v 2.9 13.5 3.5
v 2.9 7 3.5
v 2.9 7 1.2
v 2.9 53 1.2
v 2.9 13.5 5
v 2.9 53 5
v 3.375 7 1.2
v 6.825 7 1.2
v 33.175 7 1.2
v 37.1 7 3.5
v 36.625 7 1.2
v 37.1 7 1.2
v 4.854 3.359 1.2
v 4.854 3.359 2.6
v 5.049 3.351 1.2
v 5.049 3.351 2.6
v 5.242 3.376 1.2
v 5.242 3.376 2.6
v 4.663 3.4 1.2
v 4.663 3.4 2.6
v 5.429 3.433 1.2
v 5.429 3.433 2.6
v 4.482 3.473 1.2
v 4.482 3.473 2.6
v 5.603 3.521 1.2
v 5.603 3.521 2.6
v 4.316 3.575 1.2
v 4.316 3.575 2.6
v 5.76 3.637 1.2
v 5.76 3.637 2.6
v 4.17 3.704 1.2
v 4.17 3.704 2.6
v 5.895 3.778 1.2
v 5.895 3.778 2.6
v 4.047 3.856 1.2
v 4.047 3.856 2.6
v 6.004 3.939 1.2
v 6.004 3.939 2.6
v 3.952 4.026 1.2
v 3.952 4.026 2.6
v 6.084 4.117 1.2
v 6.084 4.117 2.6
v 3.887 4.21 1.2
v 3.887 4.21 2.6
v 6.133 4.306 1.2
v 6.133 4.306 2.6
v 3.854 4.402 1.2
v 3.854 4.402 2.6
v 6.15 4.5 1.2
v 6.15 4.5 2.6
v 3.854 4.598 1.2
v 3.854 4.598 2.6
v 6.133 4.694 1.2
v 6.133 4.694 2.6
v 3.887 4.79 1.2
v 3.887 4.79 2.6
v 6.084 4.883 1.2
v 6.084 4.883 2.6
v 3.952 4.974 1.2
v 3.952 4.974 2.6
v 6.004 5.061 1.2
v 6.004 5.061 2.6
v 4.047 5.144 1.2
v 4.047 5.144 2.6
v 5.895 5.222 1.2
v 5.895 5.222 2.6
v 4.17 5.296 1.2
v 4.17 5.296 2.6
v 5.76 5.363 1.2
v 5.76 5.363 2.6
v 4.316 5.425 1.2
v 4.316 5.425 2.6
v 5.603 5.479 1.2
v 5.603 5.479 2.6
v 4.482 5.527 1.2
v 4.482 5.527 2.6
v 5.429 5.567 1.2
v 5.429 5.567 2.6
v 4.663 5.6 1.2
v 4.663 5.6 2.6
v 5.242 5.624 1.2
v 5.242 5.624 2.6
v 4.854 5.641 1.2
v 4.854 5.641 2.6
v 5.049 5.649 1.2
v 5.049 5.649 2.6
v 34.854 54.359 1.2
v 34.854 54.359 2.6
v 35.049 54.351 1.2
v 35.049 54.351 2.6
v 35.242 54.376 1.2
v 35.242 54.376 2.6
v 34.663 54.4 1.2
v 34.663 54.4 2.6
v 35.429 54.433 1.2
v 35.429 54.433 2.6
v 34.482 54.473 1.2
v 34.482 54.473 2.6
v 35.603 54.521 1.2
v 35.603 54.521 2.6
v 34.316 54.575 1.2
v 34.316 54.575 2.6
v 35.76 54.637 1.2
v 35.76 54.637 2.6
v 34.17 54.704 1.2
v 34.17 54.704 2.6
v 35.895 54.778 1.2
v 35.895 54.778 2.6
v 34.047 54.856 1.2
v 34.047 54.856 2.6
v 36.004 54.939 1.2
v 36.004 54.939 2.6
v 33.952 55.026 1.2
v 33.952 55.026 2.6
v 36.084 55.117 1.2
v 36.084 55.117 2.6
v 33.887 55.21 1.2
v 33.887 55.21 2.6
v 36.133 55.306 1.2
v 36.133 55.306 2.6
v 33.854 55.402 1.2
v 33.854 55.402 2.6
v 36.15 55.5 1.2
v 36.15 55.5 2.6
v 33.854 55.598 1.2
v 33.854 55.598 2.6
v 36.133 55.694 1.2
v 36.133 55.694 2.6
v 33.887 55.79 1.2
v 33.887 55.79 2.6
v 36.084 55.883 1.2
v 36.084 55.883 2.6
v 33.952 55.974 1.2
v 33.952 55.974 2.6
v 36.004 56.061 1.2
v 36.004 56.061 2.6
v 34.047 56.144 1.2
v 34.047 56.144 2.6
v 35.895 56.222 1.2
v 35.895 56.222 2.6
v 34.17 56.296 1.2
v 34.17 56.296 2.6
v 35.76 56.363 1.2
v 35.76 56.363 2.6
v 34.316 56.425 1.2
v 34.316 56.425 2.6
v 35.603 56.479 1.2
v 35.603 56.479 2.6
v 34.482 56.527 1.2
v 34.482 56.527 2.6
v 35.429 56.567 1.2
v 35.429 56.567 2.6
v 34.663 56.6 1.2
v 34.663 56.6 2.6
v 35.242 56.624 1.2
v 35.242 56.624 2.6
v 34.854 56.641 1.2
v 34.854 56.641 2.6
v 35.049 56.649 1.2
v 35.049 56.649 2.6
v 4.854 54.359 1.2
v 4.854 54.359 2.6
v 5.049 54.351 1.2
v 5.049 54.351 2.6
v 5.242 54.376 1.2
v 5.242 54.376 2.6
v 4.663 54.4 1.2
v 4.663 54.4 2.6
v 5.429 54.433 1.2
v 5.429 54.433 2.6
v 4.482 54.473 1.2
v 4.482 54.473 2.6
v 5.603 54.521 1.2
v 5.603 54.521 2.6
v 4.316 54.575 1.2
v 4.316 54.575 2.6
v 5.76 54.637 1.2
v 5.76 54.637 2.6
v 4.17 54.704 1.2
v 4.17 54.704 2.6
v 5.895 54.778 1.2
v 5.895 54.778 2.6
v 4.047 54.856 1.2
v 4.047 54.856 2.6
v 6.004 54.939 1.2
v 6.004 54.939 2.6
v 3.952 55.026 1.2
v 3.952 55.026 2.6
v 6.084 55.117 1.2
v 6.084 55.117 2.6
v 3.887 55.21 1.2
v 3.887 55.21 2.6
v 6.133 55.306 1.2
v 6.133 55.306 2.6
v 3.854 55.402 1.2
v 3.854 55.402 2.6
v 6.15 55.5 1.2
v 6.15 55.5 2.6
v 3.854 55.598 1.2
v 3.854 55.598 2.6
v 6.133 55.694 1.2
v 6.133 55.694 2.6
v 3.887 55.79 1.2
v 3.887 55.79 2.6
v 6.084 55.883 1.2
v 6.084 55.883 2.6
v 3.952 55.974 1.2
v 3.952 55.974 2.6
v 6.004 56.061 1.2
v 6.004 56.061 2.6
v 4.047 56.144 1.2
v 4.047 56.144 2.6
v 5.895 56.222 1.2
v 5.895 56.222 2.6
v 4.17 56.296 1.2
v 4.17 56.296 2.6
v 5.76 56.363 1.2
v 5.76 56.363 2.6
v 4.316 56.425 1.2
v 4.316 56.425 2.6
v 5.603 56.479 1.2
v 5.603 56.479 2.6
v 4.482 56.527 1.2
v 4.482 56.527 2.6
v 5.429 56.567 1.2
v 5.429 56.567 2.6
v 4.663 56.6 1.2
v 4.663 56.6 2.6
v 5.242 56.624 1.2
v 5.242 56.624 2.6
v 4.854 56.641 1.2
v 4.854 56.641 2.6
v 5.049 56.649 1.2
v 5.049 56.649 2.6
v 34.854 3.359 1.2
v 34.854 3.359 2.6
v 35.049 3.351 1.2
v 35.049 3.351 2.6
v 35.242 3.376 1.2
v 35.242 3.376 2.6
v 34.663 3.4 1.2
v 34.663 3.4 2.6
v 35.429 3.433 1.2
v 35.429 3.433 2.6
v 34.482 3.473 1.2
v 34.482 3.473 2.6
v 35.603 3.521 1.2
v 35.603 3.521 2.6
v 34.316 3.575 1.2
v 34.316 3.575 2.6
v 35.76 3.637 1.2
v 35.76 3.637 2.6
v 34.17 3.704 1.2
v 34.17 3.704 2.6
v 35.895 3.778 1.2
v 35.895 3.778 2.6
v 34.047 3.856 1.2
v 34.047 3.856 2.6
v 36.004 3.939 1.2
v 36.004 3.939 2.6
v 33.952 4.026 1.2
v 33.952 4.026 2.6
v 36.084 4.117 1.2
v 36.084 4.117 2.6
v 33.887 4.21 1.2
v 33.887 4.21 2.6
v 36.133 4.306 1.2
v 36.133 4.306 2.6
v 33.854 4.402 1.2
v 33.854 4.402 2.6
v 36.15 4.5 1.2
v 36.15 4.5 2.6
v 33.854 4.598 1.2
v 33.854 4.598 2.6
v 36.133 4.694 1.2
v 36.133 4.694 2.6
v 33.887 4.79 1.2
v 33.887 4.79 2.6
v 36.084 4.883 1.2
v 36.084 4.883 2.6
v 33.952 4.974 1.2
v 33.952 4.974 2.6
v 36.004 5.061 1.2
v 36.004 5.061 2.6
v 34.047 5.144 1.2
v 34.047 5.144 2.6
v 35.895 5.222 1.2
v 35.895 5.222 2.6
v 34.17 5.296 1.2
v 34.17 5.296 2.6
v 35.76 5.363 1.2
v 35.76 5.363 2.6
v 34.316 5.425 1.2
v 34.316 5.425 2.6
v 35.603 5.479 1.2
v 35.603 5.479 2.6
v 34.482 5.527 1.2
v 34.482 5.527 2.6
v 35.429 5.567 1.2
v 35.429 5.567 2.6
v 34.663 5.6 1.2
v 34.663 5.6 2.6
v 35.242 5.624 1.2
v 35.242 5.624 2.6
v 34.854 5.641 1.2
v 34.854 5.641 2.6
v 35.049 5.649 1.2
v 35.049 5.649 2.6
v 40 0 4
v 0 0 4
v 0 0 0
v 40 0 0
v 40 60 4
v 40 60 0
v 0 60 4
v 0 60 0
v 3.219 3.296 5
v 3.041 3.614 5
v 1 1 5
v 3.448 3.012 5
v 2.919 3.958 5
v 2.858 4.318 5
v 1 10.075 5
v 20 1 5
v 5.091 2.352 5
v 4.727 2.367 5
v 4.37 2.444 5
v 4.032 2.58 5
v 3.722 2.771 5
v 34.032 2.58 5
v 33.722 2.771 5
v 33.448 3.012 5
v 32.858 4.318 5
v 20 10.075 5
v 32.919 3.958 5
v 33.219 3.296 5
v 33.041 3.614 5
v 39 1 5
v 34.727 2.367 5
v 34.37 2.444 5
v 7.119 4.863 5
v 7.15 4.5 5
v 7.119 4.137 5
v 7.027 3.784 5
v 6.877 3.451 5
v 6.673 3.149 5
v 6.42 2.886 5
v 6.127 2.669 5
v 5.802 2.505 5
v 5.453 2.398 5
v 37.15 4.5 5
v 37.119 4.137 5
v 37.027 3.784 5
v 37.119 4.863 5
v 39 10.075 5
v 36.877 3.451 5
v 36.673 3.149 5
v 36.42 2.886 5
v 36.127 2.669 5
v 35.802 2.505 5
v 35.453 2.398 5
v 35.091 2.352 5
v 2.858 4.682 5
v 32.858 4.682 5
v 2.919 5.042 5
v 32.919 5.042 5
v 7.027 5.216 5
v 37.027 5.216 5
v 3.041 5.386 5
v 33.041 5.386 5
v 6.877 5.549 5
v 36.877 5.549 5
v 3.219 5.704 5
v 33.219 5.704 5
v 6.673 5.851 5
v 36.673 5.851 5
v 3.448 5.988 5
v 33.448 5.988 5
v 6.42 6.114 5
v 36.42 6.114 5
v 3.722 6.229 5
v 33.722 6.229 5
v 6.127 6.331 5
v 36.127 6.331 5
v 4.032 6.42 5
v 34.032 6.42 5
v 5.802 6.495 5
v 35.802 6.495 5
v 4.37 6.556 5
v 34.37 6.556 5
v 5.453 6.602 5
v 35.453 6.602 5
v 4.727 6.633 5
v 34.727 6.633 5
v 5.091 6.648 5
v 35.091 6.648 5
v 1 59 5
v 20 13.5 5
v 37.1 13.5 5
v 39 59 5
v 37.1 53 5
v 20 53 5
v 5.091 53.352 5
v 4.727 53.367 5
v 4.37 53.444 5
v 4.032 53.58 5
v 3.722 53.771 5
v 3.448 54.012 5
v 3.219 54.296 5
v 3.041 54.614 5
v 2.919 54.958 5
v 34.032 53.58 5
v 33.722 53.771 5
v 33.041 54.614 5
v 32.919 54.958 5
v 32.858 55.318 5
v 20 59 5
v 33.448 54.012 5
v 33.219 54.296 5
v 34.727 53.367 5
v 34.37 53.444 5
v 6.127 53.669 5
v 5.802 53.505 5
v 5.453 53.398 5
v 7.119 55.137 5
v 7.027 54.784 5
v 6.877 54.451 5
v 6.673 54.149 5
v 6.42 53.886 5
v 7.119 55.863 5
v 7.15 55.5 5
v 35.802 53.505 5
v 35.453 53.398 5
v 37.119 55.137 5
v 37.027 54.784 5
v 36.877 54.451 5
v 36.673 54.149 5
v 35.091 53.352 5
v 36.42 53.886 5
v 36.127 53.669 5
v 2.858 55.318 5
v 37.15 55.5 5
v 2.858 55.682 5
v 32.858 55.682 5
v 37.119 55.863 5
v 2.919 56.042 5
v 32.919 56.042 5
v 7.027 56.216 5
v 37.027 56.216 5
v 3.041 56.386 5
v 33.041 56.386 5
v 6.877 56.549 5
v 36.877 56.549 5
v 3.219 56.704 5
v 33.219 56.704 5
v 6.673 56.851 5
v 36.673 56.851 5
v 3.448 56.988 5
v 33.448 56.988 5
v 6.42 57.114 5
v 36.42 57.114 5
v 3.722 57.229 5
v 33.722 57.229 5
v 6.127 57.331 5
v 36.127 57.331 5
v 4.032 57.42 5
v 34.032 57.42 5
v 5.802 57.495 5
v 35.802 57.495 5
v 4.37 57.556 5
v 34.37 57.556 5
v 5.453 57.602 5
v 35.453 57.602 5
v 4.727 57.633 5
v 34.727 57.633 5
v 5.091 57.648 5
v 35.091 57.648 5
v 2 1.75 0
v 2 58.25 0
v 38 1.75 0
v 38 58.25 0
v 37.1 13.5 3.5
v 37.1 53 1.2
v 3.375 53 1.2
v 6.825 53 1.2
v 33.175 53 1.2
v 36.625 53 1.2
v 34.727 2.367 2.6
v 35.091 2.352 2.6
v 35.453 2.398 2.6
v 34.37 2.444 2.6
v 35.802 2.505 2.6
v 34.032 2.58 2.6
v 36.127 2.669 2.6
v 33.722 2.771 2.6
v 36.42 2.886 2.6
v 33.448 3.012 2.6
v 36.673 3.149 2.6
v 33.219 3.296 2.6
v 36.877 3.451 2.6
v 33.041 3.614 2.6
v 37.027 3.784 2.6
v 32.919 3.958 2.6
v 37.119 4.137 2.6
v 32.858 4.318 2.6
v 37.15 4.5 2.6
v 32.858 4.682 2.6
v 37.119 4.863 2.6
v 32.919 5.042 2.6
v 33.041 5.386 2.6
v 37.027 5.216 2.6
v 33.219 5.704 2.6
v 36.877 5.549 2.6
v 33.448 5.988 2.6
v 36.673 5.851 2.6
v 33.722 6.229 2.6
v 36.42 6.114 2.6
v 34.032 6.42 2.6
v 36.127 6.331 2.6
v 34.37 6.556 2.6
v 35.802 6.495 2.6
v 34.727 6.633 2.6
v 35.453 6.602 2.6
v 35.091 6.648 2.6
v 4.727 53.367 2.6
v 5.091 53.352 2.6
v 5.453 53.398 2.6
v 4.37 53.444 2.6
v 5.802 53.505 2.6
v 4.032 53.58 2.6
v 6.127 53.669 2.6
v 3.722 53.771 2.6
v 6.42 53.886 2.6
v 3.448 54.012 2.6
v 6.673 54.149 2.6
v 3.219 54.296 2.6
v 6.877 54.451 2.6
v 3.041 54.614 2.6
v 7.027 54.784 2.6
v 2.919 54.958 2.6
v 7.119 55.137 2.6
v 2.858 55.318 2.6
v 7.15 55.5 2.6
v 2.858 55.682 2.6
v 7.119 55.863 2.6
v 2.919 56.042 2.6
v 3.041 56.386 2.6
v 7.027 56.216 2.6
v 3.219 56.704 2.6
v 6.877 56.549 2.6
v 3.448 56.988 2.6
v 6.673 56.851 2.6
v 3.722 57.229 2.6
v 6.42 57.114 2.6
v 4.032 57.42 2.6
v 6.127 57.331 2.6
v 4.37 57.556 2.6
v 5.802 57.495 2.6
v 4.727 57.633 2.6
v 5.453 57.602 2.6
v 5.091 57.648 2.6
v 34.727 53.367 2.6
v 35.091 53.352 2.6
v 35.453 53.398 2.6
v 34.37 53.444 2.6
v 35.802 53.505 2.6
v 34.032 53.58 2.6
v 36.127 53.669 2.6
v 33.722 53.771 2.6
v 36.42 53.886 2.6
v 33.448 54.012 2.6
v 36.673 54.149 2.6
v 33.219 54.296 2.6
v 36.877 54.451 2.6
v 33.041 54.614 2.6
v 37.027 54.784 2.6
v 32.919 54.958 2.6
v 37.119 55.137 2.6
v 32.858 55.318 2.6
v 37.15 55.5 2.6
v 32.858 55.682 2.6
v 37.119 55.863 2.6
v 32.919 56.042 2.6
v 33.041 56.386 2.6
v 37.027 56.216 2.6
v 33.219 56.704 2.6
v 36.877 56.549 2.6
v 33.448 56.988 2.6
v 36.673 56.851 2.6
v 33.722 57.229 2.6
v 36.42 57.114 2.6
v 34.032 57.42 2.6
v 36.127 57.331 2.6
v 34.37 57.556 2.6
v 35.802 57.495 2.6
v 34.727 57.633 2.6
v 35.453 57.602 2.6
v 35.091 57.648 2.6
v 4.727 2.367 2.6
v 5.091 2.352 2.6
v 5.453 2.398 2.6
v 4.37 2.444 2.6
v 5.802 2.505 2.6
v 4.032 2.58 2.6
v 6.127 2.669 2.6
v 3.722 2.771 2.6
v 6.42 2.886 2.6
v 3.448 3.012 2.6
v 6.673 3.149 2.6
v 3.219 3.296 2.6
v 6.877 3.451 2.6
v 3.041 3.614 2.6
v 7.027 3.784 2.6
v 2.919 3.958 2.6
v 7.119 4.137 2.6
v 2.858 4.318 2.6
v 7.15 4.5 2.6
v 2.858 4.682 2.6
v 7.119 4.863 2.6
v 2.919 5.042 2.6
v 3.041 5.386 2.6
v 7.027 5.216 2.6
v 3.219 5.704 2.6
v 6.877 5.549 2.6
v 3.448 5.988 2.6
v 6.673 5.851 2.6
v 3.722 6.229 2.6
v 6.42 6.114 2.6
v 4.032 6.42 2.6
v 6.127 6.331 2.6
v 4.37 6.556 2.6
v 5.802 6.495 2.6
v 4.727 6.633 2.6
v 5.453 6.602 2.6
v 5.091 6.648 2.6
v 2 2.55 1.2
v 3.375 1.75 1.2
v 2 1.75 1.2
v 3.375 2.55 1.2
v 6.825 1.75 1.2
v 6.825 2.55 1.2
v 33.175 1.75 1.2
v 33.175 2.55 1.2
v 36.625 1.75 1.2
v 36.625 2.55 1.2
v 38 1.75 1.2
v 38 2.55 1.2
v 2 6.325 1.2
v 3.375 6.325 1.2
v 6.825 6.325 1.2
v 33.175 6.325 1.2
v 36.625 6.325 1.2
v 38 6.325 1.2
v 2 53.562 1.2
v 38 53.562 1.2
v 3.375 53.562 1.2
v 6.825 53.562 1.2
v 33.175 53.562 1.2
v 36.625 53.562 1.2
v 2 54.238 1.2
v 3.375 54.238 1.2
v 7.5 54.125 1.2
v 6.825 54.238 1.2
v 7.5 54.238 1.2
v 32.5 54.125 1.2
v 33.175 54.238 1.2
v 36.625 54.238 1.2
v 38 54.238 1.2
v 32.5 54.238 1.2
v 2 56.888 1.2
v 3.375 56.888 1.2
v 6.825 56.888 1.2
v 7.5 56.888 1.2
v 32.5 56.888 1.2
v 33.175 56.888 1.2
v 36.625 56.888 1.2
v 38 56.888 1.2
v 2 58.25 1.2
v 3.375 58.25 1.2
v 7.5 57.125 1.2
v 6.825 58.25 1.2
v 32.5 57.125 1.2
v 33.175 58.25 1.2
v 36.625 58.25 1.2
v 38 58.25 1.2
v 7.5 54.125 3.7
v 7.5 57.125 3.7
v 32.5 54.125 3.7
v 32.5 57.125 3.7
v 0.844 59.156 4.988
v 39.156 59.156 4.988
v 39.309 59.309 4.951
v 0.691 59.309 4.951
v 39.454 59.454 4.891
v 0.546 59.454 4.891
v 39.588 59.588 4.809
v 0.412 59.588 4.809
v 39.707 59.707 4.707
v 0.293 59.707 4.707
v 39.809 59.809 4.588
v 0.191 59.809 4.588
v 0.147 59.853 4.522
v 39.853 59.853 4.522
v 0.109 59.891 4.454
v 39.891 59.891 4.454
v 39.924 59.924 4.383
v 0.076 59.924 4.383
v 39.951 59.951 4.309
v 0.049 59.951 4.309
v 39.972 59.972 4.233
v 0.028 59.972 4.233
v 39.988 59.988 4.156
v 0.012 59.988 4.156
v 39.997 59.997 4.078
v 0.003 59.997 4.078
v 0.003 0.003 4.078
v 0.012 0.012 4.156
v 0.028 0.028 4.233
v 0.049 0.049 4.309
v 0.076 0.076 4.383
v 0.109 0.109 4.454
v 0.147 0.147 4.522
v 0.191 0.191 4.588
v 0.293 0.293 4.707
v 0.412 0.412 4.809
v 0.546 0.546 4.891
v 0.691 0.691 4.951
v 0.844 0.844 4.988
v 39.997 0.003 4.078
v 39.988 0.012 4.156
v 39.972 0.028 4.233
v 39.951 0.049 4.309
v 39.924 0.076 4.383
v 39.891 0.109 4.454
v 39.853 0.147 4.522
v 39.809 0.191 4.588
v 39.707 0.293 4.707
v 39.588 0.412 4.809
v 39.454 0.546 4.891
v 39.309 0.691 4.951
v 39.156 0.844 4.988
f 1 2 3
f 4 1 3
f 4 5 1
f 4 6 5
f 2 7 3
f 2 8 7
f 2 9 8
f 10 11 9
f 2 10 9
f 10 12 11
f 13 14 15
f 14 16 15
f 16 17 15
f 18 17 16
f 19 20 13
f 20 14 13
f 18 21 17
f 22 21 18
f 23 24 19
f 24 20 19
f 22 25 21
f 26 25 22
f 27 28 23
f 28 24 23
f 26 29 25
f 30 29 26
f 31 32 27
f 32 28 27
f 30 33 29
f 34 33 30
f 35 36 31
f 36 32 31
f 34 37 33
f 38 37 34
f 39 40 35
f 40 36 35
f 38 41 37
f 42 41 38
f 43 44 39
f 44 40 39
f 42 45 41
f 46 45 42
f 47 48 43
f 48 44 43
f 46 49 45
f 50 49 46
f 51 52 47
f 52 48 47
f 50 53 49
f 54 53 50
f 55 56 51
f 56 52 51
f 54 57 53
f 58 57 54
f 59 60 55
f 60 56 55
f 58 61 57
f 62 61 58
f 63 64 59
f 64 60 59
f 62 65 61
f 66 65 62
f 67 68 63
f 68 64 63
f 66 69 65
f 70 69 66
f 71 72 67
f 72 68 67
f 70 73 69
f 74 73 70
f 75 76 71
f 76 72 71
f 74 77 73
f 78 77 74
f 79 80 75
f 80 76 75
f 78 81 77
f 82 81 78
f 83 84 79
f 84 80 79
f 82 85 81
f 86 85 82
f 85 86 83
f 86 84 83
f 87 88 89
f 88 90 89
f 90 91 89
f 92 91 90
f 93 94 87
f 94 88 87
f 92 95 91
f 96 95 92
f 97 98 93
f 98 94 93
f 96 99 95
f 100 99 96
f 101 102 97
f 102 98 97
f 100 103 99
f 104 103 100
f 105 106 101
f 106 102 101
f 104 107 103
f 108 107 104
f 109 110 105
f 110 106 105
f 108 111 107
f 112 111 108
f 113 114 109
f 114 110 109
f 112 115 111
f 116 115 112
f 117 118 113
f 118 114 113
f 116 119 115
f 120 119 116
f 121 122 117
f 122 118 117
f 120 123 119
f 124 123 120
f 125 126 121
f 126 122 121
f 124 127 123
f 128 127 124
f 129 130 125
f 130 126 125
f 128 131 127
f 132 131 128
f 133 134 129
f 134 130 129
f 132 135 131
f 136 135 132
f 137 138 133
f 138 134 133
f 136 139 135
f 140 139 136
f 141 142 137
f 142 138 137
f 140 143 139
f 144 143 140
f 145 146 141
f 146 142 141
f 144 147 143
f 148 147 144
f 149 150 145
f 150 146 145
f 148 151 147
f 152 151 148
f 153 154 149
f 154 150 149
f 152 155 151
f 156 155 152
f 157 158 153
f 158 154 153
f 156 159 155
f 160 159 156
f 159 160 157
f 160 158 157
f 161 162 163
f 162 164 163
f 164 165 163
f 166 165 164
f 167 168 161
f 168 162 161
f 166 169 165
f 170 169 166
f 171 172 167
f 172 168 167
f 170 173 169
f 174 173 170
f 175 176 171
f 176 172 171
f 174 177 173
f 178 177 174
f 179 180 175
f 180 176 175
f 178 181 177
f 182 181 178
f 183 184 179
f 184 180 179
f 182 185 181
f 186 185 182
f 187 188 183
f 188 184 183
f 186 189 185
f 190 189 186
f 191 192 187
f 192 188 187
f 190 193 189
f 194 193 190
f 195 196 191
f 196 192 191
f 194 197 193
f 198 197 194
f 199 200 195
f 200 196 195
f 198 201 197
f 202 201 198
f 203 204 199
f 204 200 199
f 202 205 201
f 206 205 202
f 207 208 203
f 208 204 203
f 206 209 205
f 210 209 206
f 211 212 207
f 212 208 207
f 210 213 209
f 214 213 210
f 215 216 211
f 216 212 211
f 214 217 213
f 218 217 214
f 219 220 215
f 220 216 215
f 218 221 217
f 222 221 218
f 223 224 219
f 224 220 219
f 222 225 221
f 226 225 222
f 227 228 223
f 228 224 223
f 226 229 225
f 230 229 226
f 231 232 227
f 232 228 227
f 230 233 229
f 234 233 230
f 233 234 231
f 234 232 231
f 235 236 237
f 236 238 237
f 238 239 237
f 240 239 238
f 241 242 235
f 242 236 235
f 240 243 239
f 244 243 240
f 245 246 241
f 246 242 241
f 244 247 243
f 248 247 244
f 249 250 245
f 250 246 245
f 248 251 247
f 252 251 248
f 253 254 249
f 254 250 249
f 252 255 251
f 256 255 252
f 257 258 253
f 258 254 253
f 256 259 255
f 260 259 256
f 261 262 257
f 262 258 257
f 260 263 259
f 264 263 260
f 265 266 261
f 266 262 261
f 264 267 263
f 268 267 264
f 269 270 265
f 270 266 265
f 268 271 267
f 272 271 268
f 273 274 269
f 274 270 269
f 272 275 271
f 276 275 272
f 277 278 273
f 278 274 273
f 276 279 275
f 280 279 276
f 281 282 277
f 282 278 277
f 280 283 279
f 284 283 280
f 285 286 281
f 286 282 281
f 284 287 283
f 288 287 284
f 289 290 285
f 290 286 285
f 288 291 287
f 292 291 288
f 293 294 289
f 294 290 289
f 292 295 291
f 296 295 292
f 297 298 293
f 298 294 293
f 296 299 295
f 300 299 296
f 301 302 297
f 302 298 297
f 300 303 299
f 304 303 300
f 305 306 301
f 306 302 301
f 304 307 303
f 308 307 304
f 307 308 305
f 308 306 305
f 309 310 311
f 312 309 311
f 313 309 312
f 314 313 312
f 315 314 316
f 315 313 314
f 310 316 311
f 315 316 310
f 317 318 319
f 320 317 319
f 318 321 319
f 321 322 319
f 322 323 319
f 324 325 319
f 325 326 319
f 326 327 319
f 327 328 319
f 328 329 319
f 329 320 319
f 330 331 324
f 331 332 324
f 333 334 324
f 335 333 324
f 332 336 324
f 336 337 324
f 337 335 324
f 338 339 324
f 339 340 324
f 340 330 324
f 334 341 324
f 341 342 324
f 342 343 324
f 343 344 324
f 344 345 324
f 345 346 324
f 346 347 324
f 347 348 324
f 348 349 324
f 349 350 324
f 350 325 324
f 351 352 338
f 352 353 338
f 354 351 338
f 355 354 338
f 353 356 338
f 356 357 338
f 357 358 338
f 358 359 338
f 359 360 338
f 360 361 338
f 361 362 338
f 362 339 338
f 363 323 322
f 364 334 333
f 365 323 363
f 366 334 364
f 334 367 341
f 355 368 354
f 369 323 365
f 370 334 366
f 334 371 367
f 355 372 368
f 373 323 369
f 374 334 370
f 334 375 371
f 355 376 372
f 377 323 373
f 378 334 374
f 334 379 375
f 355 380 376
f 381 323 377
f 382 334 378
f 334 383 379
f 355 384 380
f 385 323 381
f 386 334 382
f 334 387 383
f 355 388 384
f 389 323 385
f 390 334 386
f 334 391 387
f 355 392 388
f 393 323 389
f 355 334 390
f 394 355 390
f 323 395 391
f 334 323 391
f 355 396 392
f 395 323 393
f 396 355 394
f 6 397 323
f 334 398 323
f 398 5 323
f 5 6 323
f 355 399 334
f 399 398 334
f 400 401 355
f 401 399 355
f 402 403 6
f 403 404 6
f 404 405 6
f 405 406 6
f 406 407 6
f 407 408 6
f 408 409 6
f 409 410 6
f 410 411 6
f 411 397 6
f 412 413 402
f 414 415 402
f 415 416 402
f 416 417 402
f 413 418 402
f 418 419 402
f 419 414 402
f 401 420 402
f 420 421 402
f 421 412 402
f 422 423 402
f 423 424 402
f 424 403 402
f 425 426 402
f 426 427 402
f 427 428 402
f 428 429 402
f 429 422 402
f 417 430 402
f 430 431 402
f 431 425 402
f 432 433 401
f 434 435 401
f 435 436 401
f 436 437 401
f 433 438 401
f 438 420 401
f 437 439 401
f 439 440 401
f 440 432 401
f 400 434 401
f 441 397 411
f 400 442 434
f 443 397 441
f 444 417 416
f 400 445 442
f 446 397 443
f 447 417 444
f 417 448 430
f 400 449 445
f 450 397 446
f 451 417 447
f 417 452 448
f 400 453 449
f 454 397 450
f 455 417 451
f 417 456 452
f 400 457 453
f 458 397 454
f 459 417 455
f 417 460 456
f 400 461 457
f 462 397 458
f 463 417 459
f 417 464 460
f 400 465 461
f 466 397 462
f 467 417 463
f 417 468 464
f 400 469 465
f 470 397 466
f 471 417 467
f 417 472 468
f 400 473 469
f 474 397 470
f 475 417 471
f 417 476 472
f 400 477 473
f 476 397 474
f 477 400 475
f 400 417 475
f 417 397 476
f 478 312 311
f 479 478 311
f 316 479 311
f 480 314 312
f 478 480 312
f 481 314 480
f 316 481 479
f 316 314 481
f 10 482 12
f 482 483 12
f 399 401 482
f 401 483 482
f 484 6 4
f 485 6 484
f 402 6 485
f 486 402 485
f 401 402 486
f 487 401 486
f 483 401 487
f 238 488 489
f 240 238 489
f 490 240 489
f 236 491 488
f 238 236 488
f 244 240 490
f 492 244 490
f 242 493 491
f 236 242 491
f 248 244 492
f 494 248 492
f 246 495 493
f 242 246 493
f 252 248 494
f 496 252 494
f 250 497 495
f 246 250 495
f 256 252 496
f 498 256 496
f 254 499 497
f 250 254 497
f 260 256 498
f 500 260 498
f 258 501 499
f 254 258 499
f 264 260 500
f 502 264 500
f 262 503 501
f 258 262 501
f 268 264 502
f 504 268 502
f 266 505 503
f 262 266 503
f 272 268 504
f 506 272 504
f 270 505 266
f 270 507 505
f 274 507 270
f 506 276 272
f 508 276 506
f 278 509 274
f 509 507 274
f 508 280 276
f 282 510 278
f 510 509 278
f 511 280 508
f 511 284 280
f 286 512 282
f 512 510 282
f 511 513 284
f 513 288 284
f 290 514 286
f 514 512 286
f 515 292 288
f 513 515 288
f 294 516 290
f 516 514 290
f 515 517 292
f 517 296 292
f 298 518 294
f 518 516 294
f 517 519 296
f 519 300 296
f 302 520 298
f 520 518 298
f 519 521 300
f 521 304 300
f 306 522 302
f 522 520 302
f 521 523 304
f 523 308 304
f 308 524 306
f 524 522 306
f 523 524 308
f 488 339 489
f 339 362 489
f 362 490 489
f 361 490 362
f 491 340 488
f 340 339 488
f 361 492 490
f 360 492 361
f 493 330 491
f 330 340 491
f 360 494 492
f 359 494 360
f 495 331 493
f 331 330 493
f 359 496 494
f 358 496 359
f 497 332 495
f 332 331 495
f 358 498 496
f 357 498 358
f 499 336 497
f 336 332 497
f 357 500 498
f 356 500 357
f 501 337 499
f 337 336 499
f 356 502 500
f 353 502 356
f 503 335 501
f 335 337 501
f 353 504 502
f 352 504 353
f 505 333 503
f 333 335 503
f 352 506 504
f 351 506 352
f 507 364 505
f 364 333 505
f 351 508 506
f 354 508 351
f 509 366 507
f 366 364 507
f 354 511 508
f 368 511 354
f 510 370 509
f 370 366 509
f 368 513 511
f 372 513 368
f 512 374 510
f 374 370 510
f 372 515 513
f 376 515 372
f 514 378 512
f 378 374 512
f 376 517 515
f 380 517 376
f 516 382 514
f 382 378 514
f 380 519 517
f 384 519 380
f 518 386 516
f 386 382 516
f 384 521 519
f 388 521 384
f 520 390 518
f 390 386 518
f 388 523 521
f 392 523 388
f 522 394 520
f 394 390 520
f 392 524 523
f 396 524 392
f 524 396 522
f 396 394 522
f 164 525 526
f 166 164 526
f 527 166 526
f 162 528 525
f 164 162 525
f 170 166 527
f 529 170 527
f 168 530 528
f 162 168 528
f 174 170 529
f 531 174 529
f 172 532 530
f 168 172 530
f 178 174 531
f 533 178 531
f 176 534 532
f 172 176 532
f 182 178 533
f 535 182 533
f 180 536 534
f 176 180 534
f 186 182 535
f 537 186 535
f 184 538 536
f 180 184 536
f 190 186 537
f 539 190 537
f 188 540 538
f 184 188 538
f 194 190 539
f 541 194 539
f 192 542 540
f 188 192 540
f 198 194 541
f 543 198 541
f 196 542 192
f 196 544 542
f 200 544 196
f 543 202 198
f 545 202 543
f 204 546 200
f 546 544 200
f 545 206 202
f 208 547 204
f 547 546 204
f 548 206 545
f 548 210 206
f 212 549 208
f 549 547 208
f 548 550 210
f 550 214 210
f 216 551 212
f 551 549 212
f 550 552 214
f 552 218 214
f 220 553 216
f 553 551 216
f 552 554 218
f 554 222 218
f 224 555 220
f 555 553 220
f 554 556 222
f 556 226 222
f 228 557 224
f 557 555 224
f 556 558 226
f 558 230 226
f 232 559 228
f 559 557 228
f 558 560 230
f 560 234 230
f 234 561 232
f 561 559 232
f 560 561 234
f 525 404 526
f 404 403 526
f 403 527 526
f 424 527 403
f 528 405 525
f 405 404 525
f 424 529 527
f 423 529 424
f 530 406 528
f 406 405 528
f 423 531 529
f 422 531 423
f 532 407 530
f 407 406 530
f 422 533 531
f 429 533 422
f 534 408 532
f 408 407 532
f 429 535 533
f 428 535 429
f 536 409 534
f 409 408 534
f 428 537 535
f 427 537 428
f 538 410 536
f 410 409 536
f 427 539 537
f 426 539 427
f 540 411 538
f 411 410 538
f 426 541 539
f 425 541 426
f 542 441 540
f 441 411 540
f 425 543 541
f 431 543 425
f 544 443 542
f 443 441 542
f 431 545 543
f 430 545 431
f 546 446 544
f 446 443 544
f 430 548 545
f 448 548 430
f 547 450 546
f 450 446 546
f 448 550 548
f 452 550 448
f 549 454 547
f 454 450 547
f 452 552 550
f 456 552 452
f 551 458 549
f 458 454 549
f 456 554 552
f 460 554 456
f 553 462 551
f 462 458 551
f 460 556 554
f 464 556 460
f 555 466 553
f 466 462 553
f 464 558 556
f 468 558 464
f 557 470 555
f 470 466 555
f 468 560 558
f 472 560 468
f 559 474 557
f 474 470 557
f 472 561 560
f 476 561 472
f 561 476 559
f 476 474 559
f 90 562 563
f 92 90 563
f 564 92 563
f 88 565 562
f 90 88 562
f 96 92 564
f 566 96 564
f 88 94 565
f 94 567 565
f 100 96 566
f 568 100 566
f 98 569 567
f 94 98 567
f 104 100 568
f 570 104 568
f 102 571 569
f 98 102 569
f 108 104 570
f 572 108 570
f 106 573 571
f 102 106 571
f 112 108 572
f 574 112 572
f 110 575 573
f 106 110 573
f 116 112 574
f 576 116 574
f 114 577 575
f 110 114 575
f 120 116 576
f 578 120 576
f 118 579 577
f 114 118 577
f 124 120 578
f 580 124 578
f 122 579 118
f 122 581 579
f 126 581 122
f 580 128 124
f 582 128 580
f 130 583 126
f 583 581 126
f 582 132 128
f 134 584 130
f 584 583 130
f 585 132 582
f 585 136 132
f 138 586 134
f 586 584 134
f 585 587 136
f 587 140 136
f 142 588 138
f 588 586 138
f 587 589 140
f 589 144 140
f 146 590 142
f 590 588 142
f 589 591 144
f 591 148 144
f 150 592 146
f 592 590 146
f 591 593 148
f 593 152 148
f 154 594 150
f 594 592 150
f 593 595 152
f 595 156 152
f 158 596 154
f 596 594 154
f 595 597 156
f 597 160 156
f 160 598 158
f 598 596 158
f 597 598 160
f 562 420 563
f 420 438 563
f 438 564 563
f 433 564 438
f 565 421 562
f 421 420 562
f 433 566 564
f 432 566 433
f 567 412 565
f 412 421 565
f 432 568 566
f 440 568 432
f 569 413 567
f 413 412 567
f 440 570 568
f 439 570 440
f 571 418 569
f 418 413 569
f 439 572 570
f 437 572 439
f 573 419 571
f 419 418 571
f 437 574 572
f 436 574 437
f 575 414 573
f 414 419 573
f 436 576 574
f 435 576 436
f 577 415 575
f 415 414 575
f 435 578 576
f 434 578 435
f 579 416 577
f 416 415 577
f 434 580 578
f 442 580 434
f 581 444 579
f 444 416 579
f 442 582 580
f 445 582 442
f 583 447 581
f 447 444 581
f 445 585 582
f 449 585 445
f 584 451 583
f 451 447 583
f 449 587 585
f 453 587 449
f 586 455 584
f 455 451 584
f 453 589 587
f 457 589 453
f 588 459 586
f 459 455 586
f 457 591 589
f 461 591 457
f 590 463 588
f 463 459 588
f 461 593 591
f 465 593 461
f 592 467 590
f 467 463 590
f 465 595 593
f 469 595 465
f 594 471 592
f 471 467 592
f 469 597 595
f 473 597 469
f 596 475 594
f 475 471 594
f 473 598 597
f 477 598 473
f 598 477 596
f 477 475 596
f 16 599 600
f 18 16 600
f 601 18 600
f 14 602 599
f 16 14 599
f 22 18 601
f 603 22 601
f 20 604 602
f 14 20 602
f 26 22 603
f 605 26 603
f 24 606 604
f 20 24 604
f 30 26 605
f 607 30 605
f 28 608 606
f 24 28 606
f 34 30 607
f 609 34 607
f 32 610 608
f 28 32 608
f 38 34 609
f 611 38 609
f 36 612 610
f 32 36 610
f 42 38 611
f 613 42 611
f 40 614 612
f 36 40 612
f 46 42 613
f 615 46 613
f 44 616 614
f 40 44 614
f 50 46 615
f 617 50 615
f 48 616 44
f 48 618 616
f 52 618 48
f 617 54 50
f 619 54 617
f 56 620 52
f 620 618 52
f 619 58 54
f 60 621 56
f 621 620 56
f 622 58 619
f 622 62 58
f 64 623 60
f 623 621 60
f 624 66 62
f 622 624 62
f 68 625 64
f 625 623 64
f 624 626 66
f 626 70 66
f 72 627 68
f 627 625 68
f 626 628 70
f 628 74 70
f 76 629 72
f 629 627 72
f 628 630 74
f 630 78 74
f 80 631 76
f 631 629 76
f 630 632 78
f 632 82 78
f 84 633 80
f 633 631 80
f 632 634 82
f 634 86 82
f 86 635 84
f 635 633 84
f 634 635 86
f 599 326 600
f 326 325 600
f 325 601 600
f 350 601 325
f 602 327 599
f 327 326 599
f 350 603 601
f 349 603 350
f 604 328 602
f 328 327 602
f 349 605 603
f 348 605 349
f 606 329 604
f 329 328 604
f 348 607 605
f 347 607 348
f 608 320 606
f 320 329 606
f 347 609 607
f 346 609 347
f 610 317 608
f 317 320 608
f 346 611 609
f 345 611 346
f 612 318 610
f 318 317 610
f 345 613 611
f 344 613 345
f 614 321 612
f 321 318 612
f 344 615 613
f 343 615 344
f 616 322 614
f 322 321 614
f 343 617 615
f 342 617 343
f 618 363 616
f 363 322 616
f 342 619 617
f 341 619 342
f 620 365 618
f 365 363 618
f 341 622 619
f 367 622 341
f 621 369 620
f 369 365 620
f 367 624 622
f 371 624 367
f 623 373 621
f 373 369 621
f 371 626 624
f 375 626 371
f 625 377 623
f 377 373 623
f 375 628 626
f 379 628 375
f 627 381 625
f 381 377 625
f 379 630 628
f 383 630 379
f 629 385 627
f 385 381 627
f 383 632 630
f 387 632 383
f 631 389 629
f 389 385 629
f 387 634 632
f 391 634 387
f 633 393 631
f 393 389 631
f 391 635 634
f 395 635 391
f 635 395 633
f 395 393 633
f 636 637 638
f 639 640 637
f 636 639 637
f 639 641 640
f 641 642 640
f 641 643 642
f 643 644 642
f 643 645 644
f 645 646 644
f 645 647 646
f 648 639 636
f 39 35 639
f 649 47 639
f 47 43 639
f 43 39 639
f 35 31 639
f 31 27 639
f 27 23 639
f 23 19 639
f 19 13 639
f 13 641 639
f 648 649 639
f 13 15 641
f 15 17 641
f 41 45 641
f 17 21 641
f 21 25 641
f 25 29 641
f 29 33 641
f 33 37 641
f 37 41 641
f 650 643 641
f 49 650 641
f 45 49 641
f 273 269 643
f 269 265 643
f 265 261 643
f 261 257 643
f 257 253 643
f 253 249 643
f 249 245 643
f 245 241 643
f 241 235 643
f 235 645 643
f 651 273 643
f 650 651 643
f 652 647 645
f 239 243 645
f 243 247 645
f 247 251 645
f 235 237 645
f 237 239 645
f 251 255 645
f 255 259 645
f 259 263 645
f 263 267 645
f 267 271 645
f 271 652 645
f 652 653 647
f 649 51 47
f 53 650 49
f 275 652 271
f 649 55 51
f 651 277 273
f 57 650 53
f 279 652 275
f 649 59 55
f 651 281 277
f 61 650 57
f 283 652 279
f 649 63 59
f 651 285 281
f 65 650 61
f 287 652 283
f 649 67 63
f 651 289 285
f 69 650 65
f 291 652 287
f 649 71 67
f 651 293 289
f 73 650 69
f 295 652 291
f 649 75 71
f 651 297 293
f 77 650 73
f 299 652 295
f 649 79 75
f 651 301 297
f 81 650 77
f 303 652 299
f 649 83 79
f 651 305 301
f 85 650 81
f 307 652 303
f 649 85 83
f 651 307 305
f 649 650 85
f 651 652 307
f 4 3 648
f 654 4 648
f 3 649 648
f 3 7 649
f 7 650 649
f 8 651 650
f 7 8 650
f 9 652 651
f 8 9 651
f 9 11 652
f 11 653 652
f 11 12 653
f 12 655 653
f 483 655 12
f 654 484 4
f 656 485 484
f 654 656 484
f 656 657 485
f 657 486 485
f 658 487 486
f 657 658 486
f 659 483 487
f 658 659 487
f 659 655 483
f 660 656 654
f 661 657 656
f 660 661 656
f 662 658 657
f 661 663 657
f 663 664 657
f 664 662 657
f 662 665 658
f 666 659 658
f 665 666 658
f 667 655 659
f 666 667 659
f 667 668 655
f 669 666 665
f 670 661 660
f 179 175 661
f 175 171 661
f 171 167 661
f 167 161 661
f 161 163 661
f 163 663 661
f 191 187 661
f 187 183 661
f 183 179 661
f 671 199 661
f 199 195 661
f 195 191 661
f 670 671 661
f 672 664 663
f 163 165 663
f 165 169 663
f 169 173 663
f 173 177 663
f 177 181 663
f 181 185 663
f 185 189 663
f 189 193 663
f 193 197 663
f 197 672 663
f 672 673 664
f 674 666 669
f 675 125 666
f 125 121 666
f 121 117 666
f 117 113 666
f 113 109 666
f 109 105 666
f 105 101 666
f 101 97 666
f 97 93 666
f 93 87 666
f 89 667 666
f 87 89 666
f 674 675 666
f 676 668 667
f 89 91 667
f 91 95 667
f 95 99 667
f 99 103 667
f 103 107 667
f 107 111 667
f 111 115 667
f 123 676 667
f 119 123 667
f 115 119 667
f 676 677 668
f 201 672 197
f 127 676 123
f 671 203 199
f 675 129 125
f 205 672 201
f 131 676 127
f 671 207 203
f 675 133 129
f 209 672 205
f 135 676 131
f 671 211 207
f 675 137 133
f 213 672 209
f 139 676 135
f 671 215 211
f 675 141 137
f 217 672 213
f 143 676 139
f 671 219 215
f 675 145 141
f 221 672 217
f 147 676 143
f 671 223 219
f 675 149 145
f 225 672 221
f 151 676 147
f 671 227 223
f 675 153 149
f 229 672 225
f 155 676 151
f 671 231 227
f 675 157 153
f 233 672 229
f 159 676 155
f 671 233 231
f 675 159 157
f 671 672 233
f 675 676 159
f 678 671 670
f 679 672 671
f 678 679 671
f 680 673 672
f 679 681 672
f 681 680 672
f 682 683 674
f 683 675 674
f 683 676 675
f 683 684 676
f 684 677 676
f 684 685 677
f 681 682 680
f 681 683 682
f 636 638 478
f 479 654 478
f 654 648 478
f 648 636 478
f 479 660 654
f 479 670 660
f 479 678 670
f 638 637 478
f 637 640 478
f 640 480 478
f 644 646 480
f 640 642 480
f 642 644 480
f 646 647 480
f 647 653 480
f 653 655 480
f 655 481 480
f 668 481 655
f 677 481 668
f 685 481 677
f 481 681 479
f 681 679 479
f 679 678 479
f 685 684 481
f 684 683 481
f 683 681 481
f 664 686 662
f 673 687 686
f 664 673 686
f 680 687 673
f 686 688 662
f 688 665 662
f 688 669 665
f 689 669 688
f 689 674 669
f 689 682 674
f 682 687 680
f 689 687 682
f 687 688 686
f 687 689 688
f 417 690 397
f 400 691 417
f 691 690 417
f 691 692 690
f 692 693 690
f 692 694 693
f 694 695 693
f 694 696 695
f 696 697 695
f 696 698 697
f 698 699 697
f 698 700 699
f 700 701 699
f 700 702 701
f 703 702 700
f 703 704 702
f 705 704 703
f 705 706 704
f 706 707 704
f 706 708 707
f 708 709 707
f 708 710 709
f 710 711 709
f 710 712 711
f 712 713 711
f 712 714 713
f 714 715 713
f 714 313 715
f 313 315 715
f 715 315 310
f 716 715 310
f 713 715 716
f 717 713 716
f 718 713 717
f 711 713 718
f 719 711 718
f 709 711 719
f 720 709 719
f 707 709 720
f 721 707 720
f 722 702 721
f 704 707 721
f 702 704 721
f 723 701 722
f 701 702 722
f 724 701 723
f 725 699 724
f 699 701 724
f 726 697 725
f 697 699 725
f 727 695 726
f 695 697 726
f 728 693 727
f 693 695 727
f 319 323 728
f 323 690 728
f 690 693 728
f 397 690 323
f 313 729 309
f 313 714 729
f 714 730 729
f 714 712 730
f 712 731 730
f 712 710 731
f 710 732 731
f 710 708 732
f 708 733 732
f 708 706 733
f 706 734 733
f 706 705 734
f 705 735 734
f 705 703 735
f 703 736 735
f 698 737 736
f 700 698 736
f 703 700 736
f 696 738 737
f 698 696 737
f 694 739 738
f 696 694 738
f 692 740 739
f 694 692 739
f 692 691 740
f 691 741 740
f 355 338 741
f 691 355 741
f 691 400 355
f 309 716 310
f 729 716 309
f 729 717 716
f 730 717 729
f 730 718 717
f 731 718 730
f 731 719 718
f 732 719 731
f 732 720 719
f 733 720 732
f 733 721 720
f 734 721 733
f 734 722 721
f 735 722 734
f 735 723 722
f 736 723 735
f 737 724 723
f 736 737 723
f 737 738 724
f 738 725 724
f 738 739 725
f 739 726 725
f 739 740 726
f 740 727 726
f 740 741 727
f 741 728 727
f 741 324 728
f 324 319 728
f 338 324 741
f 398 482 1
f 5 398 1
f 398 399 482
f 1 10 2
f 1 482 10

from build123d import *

# Parameters (mm, degrees)
SKETCH1_W           = 60
SKETCH1_H           = 40
BOSS_EXTRUDE1_DEPTH = 5
SKETCH2_W           = 34.2
SKETCH2_H           = 46
CUT_EXTRUDE1_DEPTH  = 73.284161474
SKETCH3_R           = 1.15
CUT_EXTRUDE2_DEPTH  = 73.284161474
SKETCH4_R           = 2.15
CUT_EXTRUDE3_DEPTH  = 2.4
SKETCH5_W           = 36
SKETCH5_H           = 56.5
CUT_EXTRUDE4_DEPTH  = 1.2
SKETCH6_W           = 25
SKETCH6_H           = 3
CUT_EXTRUDE5_DEPTH  = 2.5
FILLET1_R           = 1
BOSS_EXTRUDE2_REACH = 72.721
SKETCH7_W           = 6.5
SKETCH7_H           = 1.5


with BuildPart() as part:
    # Sketch1 → Boss-Extrude1 (new body)
    with BuildSketch(Plane(origin=(0, 0, 0), x_dir=(0, 1, 0), z_dir=(0, 0, 1))):
        with Locations((30, -20)):
            Rectangle(SKETCH1_W, SKETCH1_H)
    extrude(amount=BOSS_EXTRUDE1_DEPTH)

    # Sketch2 → Cut-Extrude1 (cut, through all)
    with BuildSketch(Plane(origin=(0, 0, 0), x_dir=(1, 0, 0), z_dir=(0, 0, -1))):
        with Locations((20, -30)):
            Rectangle(SKETCH2_W, SKETCH2_H)
    extrude(amount=-CUT_EXTRUDE1_DEPTH, mode=Mode.SUBTRACT)

    # Sketch3 → Cut-Extrude2 (cut, through all)
    with BuildSketch(Plane.XY.offset(5)):
        with Locations((5, 4.5)):
            Circle(SKETCH3_R)
        with Locations((35, 4.5)):
            Circle(SKETCH3_R)
        with Locations((5, 55.5)):
            Circle(SKETCH3_R)
        with Locations((35, 55.5)):
            Circle(SKETCH3_R)
    extrude(amount=-CUT_EXTRUDE2_DEPTH, mode=Mode.SUBTRACT)

    # Sketch4 → Cut-Extrude3 (cut)
    with BuildSketch(Plane.XY.offset(5)):
        with Locations((5, 55.5)):
            Circle(SKETCH4_R)
        with Locations((35, 55.5)):
            Circle(SKETCH4_R)
        with Locations((5, 4.5)):
            Circle(SKETCH4_R)
        with Locations((35, 4.5)):
            Circle(SKETCH4_R)
    extrude(amount=-CUT_EXTRUDE3_DEPTH, mode=Mode.SUBTRACT)

    # Sketch5 → Cut-Extrude4 (cut)
    with BuildSketch(Plane(origin=(0, 0, 0), x_dir=(1, 0, 0), z_dir=(0, 0, -1))):
        with Locations((20, -30)):
            Rectangle(SKETCH5_W, SKETCH5_H)
    extrude(amount=-CUT_EXTRUDE4_DEPTH, mode=Mode.SUBTRACT)

    # Sketch6 → Cut-Extrude5 (cut)
    with BuildSketch(Plane(origin=(0, 0, 1.2), x_dir=(1, 0, 0), z_dir=(0, 0, -1))):
        with Locations((20, -55.625)):
            Rectangle(SKETCH6_W, SKETCH6_H)
    extrude(amount=-CUT_EXTRUDE5_DEPTH, mode=Mode.SUBTRACT)

    # Fillet1
    fillet1_edges = [part.edges().sort_by_distance(p)[0] for p in [
        (20, 60, 5),
        (0, 30, 5),
        (20, 0, 5),
        (40, 30, 5),
    ]]
    fillet(fillet1_edges, radius=FILLET1_R)

    # Sketch7 → Boss-Extrude2 (add, up to next)
    with BuildSketch(Plane.YZ.offset(2.9), mode=Mode.PRIVATE) as boss_extrude2_sk1:
        with Locations((10.25, 4.25)):
            Rectangle(SKETCH7_W, SKETCH7_H)
    boss_extrude2_tool1 = extrude(boss_extrude2_sk1.sketch, amount=BOSS_EXTRUDE2_REACH, mode=Mode.PRIVATE) - part.part
    add(boss_extrude2_tool1.solids().sort_by_distance((2.9, 10.25, 4.25))[0])


solid = part.part
